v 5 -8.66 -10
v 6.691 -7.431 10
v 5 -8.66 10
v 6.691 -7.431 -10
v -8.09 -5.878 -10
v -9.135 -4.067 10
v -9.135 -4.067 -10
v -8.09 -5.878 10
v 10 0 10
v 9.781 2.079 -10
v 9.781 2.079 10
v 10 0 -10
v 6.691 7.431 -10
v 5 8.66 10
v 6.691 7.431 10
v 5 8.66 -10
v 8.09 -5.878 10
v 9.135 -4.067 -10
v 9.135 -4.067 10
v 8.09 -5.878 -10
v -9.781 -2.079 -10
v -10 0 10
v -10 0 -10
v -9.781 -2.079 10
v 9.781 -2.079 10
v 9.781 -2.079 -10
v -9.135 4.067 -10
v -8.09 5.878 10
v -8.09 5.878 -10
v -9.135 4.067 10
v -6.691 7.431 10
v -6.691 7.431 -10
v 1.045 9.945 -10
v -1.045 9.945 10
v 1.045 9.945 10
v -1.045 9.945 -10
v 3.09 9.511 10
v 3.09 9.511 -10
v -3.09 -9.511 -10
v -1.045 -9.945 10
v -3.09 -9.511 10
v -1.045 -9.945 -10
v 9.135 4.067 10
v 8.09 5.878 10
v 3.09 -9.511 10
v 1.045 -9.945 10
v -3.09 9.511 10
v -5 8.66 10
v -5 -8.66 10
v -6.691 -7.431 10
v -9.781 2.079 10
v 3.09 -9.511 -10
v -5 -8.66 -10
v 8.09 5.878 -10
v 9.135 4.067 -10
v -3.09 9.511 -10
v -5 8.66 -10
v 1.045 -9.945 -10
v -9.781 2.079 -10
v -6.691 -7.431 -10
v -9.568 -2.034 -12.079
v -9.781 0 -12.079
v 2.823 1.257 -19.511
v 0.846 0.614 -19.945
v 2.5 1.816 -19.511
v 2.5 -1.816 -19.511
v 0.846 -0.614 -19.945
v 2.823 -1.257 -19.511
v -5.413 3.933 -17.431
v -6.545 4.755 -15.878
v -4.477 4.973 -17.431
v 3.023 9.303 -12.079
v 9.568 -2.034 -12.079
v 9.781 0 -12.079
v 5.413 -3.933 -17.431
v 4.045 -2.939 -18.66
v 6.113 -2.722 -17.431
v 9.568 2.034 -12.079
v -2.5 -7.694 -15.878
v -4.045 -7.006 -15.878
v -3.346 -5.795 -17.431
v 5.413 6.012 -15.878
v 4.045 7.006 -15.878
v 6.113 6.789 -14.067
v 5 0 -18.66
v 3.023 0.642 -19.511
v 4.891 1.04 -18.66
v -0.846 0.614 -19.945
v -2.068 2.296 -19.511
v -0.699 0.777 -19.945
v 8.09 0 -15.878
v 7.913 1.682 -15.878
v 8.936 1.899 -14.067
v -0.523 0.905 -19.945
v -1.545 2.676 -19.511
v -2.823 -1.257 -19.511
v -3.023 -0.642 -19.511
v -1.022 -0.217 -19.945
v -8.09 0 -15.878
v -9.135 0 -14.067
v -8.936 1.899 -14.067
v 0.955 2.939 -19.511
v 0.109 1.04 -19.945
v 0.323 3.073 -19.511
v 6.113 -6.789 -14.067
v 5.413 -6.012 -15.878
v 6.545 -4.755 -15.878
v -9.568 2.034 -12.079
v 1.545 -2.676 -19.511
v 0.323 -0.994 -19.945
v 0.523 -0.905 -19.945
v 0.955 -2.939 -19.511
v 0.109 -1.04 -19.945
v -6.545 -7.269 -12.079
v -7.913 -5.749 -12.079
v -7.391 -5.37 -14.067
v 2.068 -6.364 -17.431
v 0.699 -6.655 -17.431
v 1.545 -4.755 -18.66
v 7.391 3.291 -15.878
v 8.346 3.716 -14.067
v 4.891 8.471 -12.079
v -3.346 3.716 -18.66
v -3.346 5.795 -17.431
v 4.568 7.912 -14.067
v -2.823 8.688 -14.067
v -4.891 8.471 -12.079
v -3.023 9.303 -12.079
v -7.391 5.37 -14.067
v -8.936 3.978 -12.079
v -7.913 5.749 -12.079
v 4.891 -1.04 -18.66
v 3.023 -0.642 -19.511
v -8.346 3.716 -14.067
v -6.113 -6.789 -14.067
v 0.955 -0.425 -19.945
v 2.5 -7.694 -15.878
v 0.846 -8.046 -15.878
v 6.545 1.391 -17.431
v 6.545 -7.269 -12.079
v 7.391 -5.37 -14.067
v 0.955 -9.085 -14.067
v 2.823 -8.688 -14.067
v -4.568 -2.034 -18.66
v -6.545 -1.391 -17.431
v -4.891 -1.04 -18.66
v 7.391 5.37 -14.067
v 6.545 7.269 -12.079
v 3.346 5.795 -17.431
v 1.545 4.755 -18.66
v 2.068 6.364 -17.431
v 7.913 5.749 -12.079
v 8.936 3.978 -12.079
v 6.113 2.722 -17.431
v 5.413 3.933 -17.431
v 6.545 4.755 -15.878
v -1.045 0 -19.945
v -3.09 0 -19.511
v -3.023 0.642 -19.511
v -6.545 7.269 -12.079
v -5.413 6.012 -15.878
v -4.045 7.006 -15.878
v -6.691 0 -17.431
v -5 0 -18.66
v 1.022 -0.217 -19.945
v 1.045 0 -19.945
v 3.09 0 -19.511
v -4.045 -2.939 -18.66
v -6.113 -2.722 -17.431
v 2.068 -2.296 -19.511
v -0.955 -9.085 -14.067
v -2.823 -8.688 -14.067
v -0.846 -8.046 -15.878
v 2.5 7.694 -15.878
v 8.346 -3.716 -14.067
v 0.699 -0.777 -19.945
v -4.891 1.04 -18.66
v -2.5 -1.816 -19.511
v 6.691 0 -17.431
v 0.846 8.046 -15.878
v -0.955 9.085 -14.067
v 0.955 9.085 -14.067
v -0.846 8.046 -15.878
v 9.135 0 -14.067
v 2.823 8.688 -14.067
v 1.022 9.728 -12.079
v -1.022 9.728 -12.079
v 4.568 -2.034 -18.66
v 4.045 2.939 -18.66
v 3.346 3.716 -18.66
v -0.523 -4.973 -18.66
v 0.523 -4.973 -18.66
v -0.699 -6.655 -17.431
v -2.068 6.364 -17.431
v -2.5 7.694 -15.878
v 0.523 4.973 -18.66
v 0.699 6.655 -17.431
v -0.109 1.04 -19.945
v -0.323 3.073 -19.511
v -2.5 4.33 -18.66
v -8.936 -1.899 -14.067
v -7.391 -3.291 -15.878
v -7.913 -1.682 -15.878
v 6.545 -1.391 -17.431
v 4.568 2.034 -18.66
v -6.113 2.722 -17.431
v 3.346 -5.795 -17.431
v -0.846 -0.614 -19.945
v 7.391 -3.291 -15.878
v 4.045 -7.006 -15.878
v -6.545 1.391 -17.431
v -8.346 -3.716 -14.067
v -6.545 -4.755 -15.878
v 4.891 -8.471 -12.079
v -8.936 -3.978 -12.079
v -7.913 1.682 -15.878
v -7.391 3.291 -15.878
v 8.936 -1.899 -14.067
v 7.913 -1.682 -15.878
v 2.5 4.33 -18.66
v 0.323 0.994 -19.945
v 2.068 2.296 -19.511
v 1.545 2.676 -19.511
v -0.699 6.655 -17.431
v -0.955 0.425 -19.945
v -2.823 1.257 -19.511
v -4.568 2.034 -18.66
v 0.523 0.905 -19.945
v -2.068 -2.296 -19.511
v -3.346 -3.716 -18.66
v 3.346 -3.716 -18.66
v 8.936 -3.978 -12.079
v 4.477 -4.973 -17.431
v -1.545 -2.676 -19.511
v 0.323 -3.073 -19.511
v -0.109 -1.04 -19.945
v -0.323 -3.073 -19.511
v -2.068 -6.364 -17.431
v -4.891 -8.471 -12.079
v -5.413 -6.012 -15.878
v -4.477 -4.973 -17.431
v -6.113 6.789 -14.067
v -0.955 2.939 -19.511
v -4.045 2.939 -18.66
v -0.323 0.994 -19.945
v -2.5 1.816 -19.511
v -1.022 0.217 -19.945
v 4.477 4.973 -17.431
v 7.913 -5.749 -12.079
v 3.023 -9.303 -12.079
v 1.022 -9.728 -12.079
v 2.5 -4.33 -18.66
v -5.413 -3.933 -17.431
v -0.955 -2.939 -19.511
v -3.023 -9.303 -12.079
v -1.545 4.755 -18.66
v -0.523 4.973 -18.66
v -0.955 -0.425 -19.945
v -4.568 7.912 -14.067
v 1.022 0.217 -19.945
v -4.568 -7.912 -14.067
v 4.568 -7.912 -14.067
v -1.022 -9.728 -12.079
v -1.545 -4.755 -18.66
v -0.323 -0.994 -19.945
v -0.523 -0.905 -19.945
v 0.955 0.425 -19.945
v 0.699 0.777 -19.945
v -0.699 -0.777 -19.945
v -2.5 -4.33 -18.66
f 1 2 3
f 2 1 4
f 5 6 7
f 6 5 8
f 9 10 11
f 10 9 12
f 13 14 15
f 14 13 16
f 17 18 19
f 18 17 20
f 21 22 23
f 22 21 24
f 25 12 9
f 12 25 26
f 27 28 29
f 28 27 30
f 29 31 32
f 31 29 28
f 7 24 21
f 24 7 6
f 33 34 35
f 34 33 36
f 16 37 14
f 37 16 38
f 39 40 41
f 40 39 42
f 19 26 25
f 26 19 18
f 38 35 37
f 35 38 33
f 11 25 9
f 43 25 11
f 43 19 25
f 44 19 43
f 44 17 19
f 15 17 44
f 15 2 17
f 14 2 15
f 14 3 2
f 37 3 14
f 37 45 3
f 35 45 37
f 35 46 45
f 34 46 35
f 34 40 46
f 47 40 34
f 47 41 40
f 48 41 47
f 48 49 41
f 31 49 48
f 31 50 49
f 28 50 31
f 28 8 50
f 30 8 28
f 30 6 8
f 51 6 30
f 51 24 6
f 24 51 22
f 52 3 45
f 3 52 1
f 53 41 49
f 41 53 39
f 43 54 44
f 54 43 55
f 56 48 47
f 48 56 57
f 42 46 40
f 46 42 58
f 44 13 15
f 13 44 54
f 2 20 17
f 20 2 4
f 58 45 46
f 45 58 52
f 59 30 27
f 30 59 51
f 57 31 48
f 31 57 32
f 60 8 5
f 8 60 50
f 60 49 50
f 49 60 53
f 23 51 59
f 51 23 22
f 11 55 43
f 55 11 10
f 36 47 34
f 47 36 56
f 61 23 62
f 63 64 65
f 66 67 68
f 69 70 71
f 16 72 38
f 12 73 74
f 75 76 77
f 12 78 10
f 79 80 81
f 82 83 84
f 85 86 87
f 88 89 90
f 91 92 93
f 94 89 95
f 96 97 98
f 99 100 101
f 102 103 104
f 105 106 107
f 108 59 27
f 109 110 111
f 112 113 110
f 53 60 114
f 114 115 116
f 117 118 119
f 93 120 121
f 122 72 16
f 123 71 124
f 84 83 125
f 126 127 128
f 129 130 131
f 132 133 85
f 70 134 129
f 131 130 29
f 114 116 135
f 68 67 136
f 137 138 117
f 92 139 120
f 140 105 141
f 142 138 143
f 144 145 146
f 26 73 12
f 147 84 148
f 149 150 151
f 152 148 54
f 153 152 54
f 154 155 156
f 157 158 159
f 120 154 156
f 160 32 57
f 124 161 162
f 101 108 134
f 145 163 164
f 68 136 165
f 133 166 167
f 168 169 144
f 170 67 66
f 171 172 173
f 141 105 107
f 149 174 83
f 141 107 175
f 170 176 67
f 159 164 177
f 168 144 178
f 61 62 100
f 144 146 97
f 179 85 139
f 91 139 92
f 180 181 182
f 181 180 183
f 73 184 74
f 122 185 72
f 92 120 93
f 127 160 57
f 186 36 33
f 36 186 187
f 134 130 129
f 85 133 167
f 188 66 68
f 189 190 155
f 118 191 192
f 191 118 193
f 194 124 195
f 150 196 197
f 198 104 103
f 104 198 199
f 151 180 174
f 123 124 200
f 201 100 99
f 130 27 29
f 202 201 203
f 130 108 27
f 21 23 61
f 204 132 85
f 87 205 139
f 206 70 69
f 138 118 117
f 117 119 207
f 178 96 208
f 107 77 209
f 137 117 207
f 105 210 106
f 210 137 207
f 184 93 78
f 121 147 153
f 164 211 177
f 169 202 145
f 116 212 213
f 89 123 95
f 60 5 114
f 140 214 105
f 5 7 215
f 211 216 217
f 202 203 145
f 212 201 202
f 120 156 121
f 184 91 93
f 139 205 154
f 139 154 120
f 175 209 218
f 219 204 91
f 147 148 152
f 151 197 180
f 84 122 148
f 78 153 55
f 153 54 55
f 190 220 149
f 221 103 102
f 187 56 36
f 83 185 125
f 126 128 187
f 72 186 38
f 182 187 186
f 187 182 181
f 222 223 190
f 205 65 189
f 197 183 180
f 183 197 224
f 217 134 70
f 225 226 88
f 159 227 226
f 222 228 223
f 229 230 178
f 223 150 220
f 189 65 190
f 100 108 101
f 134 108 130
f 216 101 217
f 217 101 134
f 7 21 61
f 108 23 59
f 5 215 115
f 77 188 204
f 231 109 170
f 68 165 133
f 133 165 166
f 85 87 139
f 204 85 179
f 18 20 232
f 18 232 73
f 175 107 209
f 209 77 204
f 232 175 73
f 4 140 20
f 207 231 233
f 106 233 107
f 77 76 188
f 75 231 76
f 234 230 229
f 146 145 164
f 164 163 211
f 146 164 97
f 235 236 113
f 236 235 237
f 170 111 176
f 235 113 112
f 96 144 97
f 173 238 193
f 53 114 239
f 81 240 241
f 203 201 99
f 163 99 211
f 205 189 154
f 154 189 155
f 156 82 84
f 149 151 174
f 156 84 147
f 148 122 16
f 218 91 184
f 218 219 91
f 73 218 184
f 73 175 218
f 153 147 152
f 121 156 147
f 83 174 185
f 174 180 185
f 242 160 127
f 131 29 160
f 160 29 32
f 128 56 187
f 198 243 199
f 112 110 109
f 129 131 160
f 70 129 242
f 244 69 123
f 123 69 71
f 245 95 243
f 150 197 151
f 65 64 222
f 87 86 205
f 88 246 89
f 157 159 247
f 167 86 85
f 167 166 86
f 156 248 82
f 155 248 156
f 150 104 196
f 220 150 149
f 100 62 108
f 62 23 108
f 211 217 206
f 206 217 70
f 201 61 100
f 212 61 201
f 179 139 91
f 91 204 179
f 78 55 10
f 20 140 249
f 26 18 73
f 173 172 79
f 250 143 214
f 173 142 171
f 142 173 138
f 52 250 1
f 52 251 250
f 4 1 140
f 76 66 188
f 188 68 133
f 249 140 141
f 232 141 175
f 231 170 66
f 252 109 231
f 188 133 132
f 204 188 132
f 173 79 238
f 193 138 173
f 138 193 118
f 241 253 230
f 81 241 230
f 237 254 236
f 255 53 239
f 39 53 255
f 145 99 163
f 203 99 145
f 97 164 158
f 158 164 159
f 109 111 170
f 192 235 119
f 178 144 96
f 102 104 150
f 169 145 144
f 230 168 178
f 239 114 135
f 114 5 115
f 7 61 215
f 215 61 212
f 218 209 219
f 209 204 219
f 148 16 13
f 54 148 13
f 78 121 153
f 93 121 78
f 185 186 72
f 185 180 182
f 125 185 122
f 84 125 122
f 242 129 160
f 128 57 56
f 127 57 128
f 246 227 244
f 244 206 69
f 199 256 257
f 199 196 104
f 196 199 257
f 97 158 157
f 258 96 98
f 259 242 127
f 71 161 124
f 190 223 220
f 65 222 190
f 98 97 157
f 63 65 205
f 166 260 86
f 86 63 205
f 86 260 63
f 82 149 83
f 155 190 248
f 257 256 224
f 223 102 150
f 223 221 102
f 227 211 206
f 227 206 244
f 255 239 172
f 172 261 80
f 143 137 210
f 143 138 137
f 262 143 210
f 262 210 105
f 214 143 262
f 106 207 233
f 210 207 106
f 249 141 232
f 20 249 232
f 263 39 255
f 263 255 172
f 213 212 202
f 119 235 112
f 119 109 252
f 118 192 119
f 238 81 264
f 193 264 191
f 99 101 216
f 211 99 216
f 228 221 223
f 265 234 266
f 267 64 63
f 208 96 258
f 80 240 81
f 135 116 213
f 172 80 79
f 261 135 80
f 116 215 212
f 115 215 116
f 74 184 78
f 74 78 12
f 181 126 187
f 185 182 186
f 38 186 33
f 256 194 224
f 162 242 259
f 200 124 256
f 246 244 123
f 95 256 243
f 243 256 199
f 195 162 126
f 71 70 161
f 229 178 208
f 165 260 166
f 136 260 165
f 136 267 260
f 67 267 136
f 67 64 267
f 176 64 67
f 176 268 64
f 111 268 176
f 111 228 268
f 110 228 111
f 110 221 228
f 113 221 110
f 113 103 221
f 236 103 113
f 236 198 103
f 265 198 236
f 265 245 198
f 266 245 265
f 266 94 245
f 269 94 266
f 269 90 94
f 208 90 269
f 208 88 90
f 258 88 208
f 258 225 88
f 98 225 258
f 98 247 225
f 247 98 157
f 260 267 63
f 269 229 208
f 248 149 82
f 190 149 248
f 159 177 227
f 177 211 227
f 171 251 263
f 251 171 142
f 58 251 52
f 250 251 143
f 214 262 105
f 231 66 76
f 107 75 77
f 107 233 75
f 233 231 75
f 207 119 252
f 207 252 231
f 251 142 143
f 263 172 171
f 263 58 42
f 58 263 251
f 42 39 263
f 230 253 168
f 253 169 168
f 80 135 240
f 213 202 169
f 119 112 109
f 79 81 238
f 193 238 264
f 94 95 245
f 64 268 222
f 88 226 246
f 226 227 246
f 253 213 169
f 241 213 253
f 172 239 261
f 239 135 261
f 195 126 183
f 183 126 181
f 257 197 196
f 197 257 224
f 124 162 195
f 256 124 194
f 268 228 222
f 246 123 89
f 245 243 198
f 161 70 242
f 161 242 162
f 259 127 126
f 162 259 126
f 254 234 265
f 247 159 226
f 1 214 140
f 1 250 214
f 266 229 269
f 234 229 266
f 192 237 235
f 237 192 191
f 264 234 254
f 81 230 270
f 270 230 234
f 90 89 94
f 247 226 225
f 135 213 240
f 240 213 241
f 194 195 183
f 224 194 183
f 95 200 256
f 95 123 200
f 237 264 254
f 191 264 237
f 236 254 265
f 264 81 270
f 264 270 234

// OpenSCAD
rotate([180,0,0])
union() {
    cylinder(r=10,h=20, center=true);
    translate([0,0,10])
    sphere(r=10);
}
